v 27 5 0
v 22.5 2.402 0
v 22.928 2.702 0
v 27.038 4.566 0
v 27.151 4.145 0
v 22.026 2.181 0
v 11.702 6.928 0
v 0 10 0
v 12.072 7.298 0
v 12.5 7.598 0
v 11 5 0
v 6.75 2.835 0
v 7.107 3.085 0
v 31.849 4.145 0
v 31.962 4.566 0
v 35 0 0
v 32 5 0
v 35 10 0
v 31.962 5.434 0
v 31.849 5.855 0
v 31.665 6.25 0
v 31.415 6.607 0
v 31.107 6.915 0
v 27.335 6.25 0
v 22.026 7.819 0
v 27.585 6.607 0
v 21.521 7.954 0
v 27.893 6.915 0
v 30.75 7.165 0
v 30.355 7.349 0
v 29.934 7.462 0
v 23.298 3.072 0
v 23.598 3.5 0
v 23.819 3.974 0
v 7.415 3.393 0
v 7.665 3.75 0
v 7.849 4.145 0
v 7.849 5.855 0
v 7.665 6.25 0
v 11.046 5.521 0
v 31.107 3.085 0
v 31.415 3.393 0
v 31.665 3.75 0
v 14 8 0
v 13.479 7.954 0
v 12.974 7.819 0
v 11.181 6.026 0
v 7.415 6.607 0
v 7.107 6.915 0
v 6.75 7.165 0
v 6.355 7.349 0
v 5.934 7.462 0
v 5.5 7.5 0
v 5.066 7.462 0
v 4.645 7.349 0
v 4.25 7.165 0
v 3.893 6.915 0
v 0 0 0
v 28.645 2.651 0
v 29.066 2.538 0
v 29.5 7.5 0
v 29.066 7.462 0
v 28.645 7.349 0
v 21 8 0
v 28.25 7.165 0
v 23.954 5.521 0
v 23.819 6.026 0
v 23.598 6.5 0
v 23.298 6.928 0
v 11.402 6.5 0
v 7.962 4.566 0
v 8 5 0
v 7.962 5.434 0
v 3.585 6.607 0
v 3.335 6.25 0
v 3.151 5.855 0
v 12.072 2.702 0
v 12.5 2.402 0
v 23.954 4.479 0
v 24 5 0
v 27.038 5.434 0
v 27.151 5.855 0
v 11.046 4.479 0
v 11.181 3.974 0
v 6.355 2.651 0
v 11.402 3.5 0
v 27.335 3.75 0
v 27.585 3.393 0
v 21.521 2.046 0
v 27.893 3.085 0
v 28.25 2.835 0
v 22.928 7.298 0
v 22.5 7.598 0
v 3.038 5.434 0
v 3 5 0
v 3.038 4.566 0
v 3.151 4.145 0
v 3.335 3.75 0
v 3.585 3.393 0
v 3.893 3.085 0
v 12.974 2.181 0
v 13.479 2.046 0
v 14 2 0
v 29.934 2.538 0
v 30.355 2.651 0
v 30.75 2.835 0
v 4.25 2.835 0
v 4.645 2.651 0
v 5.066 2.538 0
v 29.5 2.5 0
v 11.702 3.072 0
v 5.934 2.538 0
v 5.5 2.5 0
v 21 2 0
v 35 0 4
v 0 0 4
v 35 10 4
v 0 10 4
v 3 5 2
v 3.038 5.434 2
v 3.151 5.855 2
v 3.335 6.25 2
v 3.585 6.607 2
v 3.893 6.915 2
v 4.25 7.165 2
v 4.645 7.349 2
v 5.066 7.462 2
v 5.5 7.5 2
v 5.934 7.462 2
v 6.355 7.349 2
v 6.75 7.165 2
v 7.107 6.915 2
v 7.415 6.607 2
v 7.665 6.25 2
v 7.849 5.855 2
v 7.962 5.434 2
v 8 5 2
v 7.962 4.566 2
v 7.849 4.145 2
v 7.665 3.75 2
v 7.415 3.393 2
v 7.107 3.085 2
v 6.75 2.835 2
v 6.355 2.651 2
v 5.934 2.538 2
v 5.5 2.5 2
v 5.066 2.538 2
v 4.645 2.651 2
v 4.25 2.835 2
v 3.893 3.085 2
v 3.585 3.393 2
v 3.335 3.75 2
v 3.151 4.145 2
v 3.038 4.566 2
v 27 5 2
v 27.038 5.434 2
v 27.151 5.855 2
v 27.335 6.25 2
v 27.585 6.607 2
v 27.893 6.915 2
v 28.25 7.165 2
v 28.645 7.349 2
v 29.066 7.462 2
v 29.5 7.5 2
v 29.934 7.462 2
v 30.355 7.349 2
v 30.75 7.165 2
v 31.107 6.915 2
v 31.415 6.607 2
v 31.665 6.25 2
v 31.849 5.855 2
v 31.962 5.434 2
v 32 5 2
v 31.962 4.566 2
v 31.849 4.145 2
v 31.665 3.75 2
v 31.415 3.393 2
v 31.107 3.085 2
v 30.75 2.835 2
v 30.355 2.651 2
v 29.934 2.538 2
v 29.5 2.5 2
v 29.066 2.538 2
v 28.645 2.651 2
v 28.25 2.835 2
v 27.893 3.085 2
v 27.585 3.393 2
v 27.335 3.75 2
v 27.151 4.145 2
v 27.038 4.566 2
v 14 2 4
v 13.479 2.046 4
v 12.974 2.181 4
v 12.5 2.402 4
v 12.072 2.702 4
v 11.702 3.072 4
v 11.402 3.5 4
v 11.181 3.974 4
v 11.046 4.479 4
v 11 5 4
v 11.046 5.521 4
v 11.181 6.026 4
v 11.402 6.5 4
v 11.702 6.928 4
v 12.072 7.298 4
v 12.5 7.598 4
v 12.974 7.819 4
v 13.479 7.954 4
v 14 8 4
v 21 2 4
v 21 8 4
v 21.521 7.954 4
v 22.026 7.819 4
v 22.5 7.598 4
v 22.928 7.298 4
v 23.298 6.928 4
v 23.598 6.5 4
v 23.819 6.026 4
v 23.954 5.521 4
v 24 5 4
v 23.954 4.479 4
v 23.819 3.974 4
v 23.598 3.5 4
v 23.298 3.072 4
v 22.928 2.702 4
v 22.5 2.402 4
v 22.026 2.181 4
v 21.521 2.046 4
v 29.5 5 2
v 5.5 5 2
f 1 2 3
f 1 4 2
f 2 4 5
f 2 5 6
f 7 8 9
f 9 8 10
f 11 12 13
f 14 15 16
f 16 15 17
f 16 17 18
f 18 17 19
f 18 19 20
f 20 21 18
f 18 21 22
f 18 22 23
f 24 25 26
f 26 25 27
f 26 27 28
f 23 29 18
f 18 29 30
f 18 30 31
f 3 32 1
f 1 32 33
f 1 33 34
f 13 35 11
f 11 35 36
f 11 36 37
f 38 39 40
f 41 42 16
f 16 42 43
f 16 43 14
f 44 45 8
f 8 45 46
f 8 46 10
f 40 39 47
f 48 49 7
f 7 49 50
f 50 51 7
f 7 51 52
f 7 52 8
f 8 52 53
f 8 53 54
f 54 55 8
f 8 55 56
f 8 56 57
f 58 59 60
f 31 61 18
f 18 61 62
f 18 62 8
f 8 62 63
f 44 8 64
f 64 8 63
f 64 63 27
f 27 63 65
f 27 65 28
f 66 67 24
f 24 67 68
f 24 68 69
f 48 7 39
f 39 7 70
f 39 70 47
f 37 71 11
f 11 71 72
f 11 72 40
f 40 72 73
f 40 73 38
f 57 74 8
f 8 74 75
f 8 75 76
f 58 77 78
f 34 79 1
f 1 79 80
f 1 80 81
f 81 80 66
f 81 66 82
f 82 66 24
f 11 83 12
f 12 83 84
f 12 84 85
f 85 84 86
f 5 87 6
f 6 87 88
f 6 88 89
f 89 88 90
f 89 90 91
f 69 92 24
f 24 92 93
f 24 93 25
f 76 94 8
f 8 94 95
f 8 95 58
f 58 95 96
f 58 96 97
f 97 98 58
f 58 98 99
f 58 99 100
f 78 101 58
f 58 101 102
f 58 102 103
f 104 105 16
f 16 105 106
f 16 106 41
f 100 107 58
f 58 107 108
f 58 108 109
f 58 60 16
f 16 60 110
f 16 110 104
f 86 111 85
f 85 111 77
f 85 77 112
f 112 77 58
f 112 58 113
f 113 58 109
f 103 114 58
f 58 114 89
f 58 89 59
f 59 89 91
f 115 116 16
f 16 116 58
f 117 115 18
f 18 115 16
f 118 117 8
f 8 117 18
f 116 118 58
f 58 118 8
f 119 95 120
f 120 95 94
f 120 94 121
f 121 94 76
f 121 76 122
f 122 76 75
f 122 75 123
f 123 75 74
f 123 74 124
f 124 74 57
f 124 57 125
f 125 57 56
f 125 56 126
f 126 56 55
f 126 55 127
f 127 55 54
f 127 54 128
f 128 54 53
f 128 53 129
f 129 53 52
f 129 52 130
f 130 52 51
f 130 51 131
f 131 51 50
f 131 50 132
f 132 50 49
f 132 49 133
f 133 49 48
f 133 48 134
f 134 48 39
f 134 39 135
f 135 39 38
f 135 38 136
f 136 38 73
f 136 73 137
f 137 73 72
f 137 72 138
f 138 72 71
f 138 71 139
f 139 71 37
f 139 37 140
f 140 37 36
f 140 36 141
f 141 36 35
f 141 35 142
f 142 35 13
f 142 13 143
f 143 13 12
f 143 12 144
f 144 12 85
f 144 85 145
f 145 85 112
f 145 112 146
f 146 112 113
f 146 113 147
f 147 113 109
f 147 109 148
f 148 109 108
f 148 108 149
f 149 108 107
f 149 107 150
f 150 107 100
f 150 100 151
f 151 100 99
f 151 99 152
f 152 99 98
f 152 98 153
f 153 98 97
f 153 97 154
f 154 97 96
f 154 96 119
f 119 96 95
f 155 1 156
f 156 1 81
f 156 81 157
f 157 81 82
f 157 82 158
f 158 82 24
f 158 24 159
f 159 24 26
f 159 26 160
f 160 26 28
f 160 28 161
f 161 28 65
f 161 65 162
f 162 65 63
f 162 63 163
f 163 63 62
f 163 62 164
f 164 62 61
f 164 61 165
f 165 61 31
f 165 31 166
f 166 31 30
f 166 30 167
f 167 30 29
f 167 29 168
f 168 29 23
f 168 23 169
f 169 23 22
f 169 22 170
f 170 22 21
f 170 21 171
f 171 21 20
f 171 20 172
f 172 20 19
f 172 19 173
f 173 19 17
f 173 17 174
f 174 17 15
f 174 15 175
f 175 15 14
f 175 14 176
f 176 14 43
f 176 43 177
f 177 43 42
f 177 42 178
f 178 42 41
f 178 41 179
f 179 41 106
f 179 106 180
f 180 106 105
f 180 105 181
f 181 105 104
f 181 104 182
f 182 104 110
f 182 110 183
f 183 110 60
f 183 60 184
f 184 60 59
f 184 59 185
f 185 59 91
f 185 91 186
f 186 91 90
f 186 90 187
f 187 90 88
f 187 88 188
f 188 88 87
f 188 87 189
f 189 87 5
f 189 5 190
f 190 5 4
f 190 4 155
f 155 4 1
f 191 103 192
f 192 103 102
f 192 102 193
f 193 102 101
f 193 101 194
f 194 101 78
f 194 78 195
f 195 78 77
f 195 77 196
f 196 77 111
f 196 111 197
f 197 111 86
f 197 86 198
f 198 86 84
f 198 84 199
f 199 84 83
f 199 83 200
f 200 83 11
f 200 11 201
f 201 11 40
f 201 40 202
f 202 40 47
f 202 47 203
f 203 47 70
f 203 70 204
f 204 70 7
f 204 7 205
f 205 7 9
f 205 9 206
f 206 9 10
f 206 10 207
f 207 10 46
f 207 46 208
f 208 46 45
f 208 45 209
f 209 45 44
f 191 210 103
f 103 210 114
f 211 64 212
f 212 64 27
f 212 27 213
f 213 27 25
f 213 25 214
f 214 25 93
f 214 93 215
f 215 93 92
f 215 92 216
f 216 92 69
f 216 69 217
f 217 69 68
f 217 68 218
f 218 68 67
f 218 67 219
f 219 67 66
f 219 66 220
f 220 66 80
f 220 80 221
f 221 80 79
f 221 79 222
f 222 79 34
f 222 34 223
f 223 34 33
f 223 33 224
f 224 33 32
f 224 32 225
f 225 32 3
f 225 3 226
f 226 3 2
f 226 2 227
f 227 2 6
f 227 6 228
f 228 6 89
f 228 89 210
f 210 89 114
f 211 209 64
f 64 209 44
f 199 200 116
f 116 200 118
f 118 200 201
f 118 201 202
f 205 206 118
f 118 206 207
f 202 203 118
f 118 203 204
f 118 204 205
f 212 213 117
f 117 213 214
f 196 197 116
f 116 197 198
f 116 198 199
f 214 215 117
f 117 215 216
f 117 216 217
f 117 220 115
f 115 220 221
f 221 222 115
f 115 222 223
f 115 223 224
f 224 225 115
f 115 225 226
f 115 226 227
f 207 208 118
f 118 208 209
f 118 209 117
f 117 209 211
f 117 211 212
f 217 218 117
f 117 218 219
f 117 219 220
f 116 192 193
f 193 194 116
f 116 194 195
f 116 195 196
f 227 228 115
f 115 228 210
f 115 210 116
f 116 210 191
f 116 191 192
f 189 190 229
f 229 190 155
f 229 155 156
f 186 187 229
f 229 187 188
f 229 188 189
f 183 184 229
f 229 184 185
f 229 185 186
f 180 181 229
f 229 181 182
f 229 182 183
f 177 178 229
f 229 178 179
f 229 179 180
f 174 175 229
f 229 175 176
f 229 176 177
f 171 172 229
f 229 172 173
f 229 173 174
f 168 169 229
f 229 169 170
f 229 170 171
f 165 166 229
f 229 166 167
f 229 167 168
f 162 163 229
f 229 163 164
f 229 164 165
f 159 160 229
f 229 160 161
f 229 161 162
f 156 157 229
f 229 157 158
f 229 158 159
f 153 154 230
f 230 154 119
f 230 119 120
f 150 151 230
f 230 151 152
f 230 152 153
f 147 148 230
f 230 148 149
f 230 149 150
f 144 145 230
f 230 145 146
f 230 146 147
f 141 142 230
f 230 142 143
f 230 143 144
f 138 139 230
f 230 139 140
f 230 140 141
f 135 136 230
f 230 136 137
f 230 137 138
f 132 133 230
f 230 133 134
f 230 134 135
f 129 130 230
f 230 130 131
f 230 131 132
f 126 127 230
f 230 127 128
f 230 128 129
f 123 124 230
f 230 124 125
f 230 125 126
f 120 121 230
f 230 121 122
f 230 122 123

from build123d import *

# Parameters (mm, degrees)
CROQUIS1_W              = 35
CROQUIS1_H              = 10
CROQUIS1_R              = 2.5
SALIENTE_EXTRUIR1_DEPTH = 2
CROQUIS2_W              = 35
CROQUIS2_H              = 10
SALIENTE_EXTRUIR2_DEPTH = 2


with BuildPart() as part:
    # Croquis1 → Saliente-Extruir1 (new body)
    with BuildSketch(Plane.XY):
        with Locations((17.5, 5)):
            Rectangle(CROQUIS1_W, CROQUIS1_H)
        with Locations((29.5, 5)):
            Circle(CROQUIS1_R, mode=Mode.SUBTRACT)
        with Locations((5.5, 5)):
            Circle(CROQUIS1_R, mode=Mode.SUBTRACT)
        with BuildLine():
            Line((14, 8), (21, 8))
            ThreePointArc((21, 8), (24, 5), (21, 2))
            Line((21, 2), (14, 2))
            ThreePointArc((14, 2), (11, 5), (14, 8))
        make_face(mode=Mode.SUBTRACT)
    extrude(amount=SALIENTE_EXTRUIR1_DEPTH)

    # Croquis2 → Saliente-Extruir2 (add)
    with BuildSketch(Plane.XY.offset(2)):
        with Locations((17.5, 5)):
            Rectangle(CROQUIS2_W, CROQUIS2_H)
        with BuildLine():
            Line((14, 8), (21, 8))
            ThreePointArc((21, 8), (24, 5), (21, 2))
            Line((21, 2), (14, 2))
            ThreePointArc((14, 2), (11, 5), (14, 8))
        make_face(mode=Mode.SUBTRACT)
    extrude(amount=SALIENTE_EXTRUIR2_DEPTH)


solid = part.part
